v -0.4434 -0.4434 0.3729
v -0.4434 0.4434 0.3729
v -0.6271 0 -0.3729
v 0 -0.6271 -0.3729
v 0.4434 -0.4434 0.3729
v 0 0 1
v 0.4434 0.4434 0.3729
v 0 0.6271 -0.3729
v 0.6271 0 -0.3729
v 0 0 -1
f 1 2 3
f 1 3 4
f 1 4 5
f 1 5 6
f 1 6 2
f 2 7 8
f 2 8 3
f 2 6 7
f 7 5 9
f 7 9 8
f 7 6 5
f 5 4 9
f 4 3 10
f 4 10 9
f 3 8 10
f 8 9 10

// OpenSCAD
polyhedron( points = [[-0.443437353389816, -0.443437353393803, 0.372884880822433], [-0.443437353349999, 0.443437353422033, 0.372884880822433], [0.443437353306574, 0.443437353422033, 0.372884880822433], [0.443437353346388, -0.443437353393803, 0.372884880822433], [1.27460187723251e-12, -0.627115119204782, -0.372884880845791], [-0.627115119164393, 4.53517034258528e-11, -0.372884880845791], [6.38418492212749e-11, 0.627115119136893, -0.372884880831283], [0.627115119173198, -5.69360080036219e-11, -0.372884880831283], [1.27548804307995e-12, 1.71951621036985e-11, 1.0], [1.16563301685915e-11, 5.81836802853794e-12, -0.999999999935581]], faces = [[0, 1, 5], [0, 5, 4], [0, 4, 3], [0, 3, 8], [0, 8, 1], [1, 2, 6], [1, 6, 5], [1, 8, 2], [2, 3, 7], [2, 7, 6], [2, 8, 3], [3, 4, 7], [4, 5, 9], [4, 9, 7], [5, 6, 9], [6, 7, 9]]);
